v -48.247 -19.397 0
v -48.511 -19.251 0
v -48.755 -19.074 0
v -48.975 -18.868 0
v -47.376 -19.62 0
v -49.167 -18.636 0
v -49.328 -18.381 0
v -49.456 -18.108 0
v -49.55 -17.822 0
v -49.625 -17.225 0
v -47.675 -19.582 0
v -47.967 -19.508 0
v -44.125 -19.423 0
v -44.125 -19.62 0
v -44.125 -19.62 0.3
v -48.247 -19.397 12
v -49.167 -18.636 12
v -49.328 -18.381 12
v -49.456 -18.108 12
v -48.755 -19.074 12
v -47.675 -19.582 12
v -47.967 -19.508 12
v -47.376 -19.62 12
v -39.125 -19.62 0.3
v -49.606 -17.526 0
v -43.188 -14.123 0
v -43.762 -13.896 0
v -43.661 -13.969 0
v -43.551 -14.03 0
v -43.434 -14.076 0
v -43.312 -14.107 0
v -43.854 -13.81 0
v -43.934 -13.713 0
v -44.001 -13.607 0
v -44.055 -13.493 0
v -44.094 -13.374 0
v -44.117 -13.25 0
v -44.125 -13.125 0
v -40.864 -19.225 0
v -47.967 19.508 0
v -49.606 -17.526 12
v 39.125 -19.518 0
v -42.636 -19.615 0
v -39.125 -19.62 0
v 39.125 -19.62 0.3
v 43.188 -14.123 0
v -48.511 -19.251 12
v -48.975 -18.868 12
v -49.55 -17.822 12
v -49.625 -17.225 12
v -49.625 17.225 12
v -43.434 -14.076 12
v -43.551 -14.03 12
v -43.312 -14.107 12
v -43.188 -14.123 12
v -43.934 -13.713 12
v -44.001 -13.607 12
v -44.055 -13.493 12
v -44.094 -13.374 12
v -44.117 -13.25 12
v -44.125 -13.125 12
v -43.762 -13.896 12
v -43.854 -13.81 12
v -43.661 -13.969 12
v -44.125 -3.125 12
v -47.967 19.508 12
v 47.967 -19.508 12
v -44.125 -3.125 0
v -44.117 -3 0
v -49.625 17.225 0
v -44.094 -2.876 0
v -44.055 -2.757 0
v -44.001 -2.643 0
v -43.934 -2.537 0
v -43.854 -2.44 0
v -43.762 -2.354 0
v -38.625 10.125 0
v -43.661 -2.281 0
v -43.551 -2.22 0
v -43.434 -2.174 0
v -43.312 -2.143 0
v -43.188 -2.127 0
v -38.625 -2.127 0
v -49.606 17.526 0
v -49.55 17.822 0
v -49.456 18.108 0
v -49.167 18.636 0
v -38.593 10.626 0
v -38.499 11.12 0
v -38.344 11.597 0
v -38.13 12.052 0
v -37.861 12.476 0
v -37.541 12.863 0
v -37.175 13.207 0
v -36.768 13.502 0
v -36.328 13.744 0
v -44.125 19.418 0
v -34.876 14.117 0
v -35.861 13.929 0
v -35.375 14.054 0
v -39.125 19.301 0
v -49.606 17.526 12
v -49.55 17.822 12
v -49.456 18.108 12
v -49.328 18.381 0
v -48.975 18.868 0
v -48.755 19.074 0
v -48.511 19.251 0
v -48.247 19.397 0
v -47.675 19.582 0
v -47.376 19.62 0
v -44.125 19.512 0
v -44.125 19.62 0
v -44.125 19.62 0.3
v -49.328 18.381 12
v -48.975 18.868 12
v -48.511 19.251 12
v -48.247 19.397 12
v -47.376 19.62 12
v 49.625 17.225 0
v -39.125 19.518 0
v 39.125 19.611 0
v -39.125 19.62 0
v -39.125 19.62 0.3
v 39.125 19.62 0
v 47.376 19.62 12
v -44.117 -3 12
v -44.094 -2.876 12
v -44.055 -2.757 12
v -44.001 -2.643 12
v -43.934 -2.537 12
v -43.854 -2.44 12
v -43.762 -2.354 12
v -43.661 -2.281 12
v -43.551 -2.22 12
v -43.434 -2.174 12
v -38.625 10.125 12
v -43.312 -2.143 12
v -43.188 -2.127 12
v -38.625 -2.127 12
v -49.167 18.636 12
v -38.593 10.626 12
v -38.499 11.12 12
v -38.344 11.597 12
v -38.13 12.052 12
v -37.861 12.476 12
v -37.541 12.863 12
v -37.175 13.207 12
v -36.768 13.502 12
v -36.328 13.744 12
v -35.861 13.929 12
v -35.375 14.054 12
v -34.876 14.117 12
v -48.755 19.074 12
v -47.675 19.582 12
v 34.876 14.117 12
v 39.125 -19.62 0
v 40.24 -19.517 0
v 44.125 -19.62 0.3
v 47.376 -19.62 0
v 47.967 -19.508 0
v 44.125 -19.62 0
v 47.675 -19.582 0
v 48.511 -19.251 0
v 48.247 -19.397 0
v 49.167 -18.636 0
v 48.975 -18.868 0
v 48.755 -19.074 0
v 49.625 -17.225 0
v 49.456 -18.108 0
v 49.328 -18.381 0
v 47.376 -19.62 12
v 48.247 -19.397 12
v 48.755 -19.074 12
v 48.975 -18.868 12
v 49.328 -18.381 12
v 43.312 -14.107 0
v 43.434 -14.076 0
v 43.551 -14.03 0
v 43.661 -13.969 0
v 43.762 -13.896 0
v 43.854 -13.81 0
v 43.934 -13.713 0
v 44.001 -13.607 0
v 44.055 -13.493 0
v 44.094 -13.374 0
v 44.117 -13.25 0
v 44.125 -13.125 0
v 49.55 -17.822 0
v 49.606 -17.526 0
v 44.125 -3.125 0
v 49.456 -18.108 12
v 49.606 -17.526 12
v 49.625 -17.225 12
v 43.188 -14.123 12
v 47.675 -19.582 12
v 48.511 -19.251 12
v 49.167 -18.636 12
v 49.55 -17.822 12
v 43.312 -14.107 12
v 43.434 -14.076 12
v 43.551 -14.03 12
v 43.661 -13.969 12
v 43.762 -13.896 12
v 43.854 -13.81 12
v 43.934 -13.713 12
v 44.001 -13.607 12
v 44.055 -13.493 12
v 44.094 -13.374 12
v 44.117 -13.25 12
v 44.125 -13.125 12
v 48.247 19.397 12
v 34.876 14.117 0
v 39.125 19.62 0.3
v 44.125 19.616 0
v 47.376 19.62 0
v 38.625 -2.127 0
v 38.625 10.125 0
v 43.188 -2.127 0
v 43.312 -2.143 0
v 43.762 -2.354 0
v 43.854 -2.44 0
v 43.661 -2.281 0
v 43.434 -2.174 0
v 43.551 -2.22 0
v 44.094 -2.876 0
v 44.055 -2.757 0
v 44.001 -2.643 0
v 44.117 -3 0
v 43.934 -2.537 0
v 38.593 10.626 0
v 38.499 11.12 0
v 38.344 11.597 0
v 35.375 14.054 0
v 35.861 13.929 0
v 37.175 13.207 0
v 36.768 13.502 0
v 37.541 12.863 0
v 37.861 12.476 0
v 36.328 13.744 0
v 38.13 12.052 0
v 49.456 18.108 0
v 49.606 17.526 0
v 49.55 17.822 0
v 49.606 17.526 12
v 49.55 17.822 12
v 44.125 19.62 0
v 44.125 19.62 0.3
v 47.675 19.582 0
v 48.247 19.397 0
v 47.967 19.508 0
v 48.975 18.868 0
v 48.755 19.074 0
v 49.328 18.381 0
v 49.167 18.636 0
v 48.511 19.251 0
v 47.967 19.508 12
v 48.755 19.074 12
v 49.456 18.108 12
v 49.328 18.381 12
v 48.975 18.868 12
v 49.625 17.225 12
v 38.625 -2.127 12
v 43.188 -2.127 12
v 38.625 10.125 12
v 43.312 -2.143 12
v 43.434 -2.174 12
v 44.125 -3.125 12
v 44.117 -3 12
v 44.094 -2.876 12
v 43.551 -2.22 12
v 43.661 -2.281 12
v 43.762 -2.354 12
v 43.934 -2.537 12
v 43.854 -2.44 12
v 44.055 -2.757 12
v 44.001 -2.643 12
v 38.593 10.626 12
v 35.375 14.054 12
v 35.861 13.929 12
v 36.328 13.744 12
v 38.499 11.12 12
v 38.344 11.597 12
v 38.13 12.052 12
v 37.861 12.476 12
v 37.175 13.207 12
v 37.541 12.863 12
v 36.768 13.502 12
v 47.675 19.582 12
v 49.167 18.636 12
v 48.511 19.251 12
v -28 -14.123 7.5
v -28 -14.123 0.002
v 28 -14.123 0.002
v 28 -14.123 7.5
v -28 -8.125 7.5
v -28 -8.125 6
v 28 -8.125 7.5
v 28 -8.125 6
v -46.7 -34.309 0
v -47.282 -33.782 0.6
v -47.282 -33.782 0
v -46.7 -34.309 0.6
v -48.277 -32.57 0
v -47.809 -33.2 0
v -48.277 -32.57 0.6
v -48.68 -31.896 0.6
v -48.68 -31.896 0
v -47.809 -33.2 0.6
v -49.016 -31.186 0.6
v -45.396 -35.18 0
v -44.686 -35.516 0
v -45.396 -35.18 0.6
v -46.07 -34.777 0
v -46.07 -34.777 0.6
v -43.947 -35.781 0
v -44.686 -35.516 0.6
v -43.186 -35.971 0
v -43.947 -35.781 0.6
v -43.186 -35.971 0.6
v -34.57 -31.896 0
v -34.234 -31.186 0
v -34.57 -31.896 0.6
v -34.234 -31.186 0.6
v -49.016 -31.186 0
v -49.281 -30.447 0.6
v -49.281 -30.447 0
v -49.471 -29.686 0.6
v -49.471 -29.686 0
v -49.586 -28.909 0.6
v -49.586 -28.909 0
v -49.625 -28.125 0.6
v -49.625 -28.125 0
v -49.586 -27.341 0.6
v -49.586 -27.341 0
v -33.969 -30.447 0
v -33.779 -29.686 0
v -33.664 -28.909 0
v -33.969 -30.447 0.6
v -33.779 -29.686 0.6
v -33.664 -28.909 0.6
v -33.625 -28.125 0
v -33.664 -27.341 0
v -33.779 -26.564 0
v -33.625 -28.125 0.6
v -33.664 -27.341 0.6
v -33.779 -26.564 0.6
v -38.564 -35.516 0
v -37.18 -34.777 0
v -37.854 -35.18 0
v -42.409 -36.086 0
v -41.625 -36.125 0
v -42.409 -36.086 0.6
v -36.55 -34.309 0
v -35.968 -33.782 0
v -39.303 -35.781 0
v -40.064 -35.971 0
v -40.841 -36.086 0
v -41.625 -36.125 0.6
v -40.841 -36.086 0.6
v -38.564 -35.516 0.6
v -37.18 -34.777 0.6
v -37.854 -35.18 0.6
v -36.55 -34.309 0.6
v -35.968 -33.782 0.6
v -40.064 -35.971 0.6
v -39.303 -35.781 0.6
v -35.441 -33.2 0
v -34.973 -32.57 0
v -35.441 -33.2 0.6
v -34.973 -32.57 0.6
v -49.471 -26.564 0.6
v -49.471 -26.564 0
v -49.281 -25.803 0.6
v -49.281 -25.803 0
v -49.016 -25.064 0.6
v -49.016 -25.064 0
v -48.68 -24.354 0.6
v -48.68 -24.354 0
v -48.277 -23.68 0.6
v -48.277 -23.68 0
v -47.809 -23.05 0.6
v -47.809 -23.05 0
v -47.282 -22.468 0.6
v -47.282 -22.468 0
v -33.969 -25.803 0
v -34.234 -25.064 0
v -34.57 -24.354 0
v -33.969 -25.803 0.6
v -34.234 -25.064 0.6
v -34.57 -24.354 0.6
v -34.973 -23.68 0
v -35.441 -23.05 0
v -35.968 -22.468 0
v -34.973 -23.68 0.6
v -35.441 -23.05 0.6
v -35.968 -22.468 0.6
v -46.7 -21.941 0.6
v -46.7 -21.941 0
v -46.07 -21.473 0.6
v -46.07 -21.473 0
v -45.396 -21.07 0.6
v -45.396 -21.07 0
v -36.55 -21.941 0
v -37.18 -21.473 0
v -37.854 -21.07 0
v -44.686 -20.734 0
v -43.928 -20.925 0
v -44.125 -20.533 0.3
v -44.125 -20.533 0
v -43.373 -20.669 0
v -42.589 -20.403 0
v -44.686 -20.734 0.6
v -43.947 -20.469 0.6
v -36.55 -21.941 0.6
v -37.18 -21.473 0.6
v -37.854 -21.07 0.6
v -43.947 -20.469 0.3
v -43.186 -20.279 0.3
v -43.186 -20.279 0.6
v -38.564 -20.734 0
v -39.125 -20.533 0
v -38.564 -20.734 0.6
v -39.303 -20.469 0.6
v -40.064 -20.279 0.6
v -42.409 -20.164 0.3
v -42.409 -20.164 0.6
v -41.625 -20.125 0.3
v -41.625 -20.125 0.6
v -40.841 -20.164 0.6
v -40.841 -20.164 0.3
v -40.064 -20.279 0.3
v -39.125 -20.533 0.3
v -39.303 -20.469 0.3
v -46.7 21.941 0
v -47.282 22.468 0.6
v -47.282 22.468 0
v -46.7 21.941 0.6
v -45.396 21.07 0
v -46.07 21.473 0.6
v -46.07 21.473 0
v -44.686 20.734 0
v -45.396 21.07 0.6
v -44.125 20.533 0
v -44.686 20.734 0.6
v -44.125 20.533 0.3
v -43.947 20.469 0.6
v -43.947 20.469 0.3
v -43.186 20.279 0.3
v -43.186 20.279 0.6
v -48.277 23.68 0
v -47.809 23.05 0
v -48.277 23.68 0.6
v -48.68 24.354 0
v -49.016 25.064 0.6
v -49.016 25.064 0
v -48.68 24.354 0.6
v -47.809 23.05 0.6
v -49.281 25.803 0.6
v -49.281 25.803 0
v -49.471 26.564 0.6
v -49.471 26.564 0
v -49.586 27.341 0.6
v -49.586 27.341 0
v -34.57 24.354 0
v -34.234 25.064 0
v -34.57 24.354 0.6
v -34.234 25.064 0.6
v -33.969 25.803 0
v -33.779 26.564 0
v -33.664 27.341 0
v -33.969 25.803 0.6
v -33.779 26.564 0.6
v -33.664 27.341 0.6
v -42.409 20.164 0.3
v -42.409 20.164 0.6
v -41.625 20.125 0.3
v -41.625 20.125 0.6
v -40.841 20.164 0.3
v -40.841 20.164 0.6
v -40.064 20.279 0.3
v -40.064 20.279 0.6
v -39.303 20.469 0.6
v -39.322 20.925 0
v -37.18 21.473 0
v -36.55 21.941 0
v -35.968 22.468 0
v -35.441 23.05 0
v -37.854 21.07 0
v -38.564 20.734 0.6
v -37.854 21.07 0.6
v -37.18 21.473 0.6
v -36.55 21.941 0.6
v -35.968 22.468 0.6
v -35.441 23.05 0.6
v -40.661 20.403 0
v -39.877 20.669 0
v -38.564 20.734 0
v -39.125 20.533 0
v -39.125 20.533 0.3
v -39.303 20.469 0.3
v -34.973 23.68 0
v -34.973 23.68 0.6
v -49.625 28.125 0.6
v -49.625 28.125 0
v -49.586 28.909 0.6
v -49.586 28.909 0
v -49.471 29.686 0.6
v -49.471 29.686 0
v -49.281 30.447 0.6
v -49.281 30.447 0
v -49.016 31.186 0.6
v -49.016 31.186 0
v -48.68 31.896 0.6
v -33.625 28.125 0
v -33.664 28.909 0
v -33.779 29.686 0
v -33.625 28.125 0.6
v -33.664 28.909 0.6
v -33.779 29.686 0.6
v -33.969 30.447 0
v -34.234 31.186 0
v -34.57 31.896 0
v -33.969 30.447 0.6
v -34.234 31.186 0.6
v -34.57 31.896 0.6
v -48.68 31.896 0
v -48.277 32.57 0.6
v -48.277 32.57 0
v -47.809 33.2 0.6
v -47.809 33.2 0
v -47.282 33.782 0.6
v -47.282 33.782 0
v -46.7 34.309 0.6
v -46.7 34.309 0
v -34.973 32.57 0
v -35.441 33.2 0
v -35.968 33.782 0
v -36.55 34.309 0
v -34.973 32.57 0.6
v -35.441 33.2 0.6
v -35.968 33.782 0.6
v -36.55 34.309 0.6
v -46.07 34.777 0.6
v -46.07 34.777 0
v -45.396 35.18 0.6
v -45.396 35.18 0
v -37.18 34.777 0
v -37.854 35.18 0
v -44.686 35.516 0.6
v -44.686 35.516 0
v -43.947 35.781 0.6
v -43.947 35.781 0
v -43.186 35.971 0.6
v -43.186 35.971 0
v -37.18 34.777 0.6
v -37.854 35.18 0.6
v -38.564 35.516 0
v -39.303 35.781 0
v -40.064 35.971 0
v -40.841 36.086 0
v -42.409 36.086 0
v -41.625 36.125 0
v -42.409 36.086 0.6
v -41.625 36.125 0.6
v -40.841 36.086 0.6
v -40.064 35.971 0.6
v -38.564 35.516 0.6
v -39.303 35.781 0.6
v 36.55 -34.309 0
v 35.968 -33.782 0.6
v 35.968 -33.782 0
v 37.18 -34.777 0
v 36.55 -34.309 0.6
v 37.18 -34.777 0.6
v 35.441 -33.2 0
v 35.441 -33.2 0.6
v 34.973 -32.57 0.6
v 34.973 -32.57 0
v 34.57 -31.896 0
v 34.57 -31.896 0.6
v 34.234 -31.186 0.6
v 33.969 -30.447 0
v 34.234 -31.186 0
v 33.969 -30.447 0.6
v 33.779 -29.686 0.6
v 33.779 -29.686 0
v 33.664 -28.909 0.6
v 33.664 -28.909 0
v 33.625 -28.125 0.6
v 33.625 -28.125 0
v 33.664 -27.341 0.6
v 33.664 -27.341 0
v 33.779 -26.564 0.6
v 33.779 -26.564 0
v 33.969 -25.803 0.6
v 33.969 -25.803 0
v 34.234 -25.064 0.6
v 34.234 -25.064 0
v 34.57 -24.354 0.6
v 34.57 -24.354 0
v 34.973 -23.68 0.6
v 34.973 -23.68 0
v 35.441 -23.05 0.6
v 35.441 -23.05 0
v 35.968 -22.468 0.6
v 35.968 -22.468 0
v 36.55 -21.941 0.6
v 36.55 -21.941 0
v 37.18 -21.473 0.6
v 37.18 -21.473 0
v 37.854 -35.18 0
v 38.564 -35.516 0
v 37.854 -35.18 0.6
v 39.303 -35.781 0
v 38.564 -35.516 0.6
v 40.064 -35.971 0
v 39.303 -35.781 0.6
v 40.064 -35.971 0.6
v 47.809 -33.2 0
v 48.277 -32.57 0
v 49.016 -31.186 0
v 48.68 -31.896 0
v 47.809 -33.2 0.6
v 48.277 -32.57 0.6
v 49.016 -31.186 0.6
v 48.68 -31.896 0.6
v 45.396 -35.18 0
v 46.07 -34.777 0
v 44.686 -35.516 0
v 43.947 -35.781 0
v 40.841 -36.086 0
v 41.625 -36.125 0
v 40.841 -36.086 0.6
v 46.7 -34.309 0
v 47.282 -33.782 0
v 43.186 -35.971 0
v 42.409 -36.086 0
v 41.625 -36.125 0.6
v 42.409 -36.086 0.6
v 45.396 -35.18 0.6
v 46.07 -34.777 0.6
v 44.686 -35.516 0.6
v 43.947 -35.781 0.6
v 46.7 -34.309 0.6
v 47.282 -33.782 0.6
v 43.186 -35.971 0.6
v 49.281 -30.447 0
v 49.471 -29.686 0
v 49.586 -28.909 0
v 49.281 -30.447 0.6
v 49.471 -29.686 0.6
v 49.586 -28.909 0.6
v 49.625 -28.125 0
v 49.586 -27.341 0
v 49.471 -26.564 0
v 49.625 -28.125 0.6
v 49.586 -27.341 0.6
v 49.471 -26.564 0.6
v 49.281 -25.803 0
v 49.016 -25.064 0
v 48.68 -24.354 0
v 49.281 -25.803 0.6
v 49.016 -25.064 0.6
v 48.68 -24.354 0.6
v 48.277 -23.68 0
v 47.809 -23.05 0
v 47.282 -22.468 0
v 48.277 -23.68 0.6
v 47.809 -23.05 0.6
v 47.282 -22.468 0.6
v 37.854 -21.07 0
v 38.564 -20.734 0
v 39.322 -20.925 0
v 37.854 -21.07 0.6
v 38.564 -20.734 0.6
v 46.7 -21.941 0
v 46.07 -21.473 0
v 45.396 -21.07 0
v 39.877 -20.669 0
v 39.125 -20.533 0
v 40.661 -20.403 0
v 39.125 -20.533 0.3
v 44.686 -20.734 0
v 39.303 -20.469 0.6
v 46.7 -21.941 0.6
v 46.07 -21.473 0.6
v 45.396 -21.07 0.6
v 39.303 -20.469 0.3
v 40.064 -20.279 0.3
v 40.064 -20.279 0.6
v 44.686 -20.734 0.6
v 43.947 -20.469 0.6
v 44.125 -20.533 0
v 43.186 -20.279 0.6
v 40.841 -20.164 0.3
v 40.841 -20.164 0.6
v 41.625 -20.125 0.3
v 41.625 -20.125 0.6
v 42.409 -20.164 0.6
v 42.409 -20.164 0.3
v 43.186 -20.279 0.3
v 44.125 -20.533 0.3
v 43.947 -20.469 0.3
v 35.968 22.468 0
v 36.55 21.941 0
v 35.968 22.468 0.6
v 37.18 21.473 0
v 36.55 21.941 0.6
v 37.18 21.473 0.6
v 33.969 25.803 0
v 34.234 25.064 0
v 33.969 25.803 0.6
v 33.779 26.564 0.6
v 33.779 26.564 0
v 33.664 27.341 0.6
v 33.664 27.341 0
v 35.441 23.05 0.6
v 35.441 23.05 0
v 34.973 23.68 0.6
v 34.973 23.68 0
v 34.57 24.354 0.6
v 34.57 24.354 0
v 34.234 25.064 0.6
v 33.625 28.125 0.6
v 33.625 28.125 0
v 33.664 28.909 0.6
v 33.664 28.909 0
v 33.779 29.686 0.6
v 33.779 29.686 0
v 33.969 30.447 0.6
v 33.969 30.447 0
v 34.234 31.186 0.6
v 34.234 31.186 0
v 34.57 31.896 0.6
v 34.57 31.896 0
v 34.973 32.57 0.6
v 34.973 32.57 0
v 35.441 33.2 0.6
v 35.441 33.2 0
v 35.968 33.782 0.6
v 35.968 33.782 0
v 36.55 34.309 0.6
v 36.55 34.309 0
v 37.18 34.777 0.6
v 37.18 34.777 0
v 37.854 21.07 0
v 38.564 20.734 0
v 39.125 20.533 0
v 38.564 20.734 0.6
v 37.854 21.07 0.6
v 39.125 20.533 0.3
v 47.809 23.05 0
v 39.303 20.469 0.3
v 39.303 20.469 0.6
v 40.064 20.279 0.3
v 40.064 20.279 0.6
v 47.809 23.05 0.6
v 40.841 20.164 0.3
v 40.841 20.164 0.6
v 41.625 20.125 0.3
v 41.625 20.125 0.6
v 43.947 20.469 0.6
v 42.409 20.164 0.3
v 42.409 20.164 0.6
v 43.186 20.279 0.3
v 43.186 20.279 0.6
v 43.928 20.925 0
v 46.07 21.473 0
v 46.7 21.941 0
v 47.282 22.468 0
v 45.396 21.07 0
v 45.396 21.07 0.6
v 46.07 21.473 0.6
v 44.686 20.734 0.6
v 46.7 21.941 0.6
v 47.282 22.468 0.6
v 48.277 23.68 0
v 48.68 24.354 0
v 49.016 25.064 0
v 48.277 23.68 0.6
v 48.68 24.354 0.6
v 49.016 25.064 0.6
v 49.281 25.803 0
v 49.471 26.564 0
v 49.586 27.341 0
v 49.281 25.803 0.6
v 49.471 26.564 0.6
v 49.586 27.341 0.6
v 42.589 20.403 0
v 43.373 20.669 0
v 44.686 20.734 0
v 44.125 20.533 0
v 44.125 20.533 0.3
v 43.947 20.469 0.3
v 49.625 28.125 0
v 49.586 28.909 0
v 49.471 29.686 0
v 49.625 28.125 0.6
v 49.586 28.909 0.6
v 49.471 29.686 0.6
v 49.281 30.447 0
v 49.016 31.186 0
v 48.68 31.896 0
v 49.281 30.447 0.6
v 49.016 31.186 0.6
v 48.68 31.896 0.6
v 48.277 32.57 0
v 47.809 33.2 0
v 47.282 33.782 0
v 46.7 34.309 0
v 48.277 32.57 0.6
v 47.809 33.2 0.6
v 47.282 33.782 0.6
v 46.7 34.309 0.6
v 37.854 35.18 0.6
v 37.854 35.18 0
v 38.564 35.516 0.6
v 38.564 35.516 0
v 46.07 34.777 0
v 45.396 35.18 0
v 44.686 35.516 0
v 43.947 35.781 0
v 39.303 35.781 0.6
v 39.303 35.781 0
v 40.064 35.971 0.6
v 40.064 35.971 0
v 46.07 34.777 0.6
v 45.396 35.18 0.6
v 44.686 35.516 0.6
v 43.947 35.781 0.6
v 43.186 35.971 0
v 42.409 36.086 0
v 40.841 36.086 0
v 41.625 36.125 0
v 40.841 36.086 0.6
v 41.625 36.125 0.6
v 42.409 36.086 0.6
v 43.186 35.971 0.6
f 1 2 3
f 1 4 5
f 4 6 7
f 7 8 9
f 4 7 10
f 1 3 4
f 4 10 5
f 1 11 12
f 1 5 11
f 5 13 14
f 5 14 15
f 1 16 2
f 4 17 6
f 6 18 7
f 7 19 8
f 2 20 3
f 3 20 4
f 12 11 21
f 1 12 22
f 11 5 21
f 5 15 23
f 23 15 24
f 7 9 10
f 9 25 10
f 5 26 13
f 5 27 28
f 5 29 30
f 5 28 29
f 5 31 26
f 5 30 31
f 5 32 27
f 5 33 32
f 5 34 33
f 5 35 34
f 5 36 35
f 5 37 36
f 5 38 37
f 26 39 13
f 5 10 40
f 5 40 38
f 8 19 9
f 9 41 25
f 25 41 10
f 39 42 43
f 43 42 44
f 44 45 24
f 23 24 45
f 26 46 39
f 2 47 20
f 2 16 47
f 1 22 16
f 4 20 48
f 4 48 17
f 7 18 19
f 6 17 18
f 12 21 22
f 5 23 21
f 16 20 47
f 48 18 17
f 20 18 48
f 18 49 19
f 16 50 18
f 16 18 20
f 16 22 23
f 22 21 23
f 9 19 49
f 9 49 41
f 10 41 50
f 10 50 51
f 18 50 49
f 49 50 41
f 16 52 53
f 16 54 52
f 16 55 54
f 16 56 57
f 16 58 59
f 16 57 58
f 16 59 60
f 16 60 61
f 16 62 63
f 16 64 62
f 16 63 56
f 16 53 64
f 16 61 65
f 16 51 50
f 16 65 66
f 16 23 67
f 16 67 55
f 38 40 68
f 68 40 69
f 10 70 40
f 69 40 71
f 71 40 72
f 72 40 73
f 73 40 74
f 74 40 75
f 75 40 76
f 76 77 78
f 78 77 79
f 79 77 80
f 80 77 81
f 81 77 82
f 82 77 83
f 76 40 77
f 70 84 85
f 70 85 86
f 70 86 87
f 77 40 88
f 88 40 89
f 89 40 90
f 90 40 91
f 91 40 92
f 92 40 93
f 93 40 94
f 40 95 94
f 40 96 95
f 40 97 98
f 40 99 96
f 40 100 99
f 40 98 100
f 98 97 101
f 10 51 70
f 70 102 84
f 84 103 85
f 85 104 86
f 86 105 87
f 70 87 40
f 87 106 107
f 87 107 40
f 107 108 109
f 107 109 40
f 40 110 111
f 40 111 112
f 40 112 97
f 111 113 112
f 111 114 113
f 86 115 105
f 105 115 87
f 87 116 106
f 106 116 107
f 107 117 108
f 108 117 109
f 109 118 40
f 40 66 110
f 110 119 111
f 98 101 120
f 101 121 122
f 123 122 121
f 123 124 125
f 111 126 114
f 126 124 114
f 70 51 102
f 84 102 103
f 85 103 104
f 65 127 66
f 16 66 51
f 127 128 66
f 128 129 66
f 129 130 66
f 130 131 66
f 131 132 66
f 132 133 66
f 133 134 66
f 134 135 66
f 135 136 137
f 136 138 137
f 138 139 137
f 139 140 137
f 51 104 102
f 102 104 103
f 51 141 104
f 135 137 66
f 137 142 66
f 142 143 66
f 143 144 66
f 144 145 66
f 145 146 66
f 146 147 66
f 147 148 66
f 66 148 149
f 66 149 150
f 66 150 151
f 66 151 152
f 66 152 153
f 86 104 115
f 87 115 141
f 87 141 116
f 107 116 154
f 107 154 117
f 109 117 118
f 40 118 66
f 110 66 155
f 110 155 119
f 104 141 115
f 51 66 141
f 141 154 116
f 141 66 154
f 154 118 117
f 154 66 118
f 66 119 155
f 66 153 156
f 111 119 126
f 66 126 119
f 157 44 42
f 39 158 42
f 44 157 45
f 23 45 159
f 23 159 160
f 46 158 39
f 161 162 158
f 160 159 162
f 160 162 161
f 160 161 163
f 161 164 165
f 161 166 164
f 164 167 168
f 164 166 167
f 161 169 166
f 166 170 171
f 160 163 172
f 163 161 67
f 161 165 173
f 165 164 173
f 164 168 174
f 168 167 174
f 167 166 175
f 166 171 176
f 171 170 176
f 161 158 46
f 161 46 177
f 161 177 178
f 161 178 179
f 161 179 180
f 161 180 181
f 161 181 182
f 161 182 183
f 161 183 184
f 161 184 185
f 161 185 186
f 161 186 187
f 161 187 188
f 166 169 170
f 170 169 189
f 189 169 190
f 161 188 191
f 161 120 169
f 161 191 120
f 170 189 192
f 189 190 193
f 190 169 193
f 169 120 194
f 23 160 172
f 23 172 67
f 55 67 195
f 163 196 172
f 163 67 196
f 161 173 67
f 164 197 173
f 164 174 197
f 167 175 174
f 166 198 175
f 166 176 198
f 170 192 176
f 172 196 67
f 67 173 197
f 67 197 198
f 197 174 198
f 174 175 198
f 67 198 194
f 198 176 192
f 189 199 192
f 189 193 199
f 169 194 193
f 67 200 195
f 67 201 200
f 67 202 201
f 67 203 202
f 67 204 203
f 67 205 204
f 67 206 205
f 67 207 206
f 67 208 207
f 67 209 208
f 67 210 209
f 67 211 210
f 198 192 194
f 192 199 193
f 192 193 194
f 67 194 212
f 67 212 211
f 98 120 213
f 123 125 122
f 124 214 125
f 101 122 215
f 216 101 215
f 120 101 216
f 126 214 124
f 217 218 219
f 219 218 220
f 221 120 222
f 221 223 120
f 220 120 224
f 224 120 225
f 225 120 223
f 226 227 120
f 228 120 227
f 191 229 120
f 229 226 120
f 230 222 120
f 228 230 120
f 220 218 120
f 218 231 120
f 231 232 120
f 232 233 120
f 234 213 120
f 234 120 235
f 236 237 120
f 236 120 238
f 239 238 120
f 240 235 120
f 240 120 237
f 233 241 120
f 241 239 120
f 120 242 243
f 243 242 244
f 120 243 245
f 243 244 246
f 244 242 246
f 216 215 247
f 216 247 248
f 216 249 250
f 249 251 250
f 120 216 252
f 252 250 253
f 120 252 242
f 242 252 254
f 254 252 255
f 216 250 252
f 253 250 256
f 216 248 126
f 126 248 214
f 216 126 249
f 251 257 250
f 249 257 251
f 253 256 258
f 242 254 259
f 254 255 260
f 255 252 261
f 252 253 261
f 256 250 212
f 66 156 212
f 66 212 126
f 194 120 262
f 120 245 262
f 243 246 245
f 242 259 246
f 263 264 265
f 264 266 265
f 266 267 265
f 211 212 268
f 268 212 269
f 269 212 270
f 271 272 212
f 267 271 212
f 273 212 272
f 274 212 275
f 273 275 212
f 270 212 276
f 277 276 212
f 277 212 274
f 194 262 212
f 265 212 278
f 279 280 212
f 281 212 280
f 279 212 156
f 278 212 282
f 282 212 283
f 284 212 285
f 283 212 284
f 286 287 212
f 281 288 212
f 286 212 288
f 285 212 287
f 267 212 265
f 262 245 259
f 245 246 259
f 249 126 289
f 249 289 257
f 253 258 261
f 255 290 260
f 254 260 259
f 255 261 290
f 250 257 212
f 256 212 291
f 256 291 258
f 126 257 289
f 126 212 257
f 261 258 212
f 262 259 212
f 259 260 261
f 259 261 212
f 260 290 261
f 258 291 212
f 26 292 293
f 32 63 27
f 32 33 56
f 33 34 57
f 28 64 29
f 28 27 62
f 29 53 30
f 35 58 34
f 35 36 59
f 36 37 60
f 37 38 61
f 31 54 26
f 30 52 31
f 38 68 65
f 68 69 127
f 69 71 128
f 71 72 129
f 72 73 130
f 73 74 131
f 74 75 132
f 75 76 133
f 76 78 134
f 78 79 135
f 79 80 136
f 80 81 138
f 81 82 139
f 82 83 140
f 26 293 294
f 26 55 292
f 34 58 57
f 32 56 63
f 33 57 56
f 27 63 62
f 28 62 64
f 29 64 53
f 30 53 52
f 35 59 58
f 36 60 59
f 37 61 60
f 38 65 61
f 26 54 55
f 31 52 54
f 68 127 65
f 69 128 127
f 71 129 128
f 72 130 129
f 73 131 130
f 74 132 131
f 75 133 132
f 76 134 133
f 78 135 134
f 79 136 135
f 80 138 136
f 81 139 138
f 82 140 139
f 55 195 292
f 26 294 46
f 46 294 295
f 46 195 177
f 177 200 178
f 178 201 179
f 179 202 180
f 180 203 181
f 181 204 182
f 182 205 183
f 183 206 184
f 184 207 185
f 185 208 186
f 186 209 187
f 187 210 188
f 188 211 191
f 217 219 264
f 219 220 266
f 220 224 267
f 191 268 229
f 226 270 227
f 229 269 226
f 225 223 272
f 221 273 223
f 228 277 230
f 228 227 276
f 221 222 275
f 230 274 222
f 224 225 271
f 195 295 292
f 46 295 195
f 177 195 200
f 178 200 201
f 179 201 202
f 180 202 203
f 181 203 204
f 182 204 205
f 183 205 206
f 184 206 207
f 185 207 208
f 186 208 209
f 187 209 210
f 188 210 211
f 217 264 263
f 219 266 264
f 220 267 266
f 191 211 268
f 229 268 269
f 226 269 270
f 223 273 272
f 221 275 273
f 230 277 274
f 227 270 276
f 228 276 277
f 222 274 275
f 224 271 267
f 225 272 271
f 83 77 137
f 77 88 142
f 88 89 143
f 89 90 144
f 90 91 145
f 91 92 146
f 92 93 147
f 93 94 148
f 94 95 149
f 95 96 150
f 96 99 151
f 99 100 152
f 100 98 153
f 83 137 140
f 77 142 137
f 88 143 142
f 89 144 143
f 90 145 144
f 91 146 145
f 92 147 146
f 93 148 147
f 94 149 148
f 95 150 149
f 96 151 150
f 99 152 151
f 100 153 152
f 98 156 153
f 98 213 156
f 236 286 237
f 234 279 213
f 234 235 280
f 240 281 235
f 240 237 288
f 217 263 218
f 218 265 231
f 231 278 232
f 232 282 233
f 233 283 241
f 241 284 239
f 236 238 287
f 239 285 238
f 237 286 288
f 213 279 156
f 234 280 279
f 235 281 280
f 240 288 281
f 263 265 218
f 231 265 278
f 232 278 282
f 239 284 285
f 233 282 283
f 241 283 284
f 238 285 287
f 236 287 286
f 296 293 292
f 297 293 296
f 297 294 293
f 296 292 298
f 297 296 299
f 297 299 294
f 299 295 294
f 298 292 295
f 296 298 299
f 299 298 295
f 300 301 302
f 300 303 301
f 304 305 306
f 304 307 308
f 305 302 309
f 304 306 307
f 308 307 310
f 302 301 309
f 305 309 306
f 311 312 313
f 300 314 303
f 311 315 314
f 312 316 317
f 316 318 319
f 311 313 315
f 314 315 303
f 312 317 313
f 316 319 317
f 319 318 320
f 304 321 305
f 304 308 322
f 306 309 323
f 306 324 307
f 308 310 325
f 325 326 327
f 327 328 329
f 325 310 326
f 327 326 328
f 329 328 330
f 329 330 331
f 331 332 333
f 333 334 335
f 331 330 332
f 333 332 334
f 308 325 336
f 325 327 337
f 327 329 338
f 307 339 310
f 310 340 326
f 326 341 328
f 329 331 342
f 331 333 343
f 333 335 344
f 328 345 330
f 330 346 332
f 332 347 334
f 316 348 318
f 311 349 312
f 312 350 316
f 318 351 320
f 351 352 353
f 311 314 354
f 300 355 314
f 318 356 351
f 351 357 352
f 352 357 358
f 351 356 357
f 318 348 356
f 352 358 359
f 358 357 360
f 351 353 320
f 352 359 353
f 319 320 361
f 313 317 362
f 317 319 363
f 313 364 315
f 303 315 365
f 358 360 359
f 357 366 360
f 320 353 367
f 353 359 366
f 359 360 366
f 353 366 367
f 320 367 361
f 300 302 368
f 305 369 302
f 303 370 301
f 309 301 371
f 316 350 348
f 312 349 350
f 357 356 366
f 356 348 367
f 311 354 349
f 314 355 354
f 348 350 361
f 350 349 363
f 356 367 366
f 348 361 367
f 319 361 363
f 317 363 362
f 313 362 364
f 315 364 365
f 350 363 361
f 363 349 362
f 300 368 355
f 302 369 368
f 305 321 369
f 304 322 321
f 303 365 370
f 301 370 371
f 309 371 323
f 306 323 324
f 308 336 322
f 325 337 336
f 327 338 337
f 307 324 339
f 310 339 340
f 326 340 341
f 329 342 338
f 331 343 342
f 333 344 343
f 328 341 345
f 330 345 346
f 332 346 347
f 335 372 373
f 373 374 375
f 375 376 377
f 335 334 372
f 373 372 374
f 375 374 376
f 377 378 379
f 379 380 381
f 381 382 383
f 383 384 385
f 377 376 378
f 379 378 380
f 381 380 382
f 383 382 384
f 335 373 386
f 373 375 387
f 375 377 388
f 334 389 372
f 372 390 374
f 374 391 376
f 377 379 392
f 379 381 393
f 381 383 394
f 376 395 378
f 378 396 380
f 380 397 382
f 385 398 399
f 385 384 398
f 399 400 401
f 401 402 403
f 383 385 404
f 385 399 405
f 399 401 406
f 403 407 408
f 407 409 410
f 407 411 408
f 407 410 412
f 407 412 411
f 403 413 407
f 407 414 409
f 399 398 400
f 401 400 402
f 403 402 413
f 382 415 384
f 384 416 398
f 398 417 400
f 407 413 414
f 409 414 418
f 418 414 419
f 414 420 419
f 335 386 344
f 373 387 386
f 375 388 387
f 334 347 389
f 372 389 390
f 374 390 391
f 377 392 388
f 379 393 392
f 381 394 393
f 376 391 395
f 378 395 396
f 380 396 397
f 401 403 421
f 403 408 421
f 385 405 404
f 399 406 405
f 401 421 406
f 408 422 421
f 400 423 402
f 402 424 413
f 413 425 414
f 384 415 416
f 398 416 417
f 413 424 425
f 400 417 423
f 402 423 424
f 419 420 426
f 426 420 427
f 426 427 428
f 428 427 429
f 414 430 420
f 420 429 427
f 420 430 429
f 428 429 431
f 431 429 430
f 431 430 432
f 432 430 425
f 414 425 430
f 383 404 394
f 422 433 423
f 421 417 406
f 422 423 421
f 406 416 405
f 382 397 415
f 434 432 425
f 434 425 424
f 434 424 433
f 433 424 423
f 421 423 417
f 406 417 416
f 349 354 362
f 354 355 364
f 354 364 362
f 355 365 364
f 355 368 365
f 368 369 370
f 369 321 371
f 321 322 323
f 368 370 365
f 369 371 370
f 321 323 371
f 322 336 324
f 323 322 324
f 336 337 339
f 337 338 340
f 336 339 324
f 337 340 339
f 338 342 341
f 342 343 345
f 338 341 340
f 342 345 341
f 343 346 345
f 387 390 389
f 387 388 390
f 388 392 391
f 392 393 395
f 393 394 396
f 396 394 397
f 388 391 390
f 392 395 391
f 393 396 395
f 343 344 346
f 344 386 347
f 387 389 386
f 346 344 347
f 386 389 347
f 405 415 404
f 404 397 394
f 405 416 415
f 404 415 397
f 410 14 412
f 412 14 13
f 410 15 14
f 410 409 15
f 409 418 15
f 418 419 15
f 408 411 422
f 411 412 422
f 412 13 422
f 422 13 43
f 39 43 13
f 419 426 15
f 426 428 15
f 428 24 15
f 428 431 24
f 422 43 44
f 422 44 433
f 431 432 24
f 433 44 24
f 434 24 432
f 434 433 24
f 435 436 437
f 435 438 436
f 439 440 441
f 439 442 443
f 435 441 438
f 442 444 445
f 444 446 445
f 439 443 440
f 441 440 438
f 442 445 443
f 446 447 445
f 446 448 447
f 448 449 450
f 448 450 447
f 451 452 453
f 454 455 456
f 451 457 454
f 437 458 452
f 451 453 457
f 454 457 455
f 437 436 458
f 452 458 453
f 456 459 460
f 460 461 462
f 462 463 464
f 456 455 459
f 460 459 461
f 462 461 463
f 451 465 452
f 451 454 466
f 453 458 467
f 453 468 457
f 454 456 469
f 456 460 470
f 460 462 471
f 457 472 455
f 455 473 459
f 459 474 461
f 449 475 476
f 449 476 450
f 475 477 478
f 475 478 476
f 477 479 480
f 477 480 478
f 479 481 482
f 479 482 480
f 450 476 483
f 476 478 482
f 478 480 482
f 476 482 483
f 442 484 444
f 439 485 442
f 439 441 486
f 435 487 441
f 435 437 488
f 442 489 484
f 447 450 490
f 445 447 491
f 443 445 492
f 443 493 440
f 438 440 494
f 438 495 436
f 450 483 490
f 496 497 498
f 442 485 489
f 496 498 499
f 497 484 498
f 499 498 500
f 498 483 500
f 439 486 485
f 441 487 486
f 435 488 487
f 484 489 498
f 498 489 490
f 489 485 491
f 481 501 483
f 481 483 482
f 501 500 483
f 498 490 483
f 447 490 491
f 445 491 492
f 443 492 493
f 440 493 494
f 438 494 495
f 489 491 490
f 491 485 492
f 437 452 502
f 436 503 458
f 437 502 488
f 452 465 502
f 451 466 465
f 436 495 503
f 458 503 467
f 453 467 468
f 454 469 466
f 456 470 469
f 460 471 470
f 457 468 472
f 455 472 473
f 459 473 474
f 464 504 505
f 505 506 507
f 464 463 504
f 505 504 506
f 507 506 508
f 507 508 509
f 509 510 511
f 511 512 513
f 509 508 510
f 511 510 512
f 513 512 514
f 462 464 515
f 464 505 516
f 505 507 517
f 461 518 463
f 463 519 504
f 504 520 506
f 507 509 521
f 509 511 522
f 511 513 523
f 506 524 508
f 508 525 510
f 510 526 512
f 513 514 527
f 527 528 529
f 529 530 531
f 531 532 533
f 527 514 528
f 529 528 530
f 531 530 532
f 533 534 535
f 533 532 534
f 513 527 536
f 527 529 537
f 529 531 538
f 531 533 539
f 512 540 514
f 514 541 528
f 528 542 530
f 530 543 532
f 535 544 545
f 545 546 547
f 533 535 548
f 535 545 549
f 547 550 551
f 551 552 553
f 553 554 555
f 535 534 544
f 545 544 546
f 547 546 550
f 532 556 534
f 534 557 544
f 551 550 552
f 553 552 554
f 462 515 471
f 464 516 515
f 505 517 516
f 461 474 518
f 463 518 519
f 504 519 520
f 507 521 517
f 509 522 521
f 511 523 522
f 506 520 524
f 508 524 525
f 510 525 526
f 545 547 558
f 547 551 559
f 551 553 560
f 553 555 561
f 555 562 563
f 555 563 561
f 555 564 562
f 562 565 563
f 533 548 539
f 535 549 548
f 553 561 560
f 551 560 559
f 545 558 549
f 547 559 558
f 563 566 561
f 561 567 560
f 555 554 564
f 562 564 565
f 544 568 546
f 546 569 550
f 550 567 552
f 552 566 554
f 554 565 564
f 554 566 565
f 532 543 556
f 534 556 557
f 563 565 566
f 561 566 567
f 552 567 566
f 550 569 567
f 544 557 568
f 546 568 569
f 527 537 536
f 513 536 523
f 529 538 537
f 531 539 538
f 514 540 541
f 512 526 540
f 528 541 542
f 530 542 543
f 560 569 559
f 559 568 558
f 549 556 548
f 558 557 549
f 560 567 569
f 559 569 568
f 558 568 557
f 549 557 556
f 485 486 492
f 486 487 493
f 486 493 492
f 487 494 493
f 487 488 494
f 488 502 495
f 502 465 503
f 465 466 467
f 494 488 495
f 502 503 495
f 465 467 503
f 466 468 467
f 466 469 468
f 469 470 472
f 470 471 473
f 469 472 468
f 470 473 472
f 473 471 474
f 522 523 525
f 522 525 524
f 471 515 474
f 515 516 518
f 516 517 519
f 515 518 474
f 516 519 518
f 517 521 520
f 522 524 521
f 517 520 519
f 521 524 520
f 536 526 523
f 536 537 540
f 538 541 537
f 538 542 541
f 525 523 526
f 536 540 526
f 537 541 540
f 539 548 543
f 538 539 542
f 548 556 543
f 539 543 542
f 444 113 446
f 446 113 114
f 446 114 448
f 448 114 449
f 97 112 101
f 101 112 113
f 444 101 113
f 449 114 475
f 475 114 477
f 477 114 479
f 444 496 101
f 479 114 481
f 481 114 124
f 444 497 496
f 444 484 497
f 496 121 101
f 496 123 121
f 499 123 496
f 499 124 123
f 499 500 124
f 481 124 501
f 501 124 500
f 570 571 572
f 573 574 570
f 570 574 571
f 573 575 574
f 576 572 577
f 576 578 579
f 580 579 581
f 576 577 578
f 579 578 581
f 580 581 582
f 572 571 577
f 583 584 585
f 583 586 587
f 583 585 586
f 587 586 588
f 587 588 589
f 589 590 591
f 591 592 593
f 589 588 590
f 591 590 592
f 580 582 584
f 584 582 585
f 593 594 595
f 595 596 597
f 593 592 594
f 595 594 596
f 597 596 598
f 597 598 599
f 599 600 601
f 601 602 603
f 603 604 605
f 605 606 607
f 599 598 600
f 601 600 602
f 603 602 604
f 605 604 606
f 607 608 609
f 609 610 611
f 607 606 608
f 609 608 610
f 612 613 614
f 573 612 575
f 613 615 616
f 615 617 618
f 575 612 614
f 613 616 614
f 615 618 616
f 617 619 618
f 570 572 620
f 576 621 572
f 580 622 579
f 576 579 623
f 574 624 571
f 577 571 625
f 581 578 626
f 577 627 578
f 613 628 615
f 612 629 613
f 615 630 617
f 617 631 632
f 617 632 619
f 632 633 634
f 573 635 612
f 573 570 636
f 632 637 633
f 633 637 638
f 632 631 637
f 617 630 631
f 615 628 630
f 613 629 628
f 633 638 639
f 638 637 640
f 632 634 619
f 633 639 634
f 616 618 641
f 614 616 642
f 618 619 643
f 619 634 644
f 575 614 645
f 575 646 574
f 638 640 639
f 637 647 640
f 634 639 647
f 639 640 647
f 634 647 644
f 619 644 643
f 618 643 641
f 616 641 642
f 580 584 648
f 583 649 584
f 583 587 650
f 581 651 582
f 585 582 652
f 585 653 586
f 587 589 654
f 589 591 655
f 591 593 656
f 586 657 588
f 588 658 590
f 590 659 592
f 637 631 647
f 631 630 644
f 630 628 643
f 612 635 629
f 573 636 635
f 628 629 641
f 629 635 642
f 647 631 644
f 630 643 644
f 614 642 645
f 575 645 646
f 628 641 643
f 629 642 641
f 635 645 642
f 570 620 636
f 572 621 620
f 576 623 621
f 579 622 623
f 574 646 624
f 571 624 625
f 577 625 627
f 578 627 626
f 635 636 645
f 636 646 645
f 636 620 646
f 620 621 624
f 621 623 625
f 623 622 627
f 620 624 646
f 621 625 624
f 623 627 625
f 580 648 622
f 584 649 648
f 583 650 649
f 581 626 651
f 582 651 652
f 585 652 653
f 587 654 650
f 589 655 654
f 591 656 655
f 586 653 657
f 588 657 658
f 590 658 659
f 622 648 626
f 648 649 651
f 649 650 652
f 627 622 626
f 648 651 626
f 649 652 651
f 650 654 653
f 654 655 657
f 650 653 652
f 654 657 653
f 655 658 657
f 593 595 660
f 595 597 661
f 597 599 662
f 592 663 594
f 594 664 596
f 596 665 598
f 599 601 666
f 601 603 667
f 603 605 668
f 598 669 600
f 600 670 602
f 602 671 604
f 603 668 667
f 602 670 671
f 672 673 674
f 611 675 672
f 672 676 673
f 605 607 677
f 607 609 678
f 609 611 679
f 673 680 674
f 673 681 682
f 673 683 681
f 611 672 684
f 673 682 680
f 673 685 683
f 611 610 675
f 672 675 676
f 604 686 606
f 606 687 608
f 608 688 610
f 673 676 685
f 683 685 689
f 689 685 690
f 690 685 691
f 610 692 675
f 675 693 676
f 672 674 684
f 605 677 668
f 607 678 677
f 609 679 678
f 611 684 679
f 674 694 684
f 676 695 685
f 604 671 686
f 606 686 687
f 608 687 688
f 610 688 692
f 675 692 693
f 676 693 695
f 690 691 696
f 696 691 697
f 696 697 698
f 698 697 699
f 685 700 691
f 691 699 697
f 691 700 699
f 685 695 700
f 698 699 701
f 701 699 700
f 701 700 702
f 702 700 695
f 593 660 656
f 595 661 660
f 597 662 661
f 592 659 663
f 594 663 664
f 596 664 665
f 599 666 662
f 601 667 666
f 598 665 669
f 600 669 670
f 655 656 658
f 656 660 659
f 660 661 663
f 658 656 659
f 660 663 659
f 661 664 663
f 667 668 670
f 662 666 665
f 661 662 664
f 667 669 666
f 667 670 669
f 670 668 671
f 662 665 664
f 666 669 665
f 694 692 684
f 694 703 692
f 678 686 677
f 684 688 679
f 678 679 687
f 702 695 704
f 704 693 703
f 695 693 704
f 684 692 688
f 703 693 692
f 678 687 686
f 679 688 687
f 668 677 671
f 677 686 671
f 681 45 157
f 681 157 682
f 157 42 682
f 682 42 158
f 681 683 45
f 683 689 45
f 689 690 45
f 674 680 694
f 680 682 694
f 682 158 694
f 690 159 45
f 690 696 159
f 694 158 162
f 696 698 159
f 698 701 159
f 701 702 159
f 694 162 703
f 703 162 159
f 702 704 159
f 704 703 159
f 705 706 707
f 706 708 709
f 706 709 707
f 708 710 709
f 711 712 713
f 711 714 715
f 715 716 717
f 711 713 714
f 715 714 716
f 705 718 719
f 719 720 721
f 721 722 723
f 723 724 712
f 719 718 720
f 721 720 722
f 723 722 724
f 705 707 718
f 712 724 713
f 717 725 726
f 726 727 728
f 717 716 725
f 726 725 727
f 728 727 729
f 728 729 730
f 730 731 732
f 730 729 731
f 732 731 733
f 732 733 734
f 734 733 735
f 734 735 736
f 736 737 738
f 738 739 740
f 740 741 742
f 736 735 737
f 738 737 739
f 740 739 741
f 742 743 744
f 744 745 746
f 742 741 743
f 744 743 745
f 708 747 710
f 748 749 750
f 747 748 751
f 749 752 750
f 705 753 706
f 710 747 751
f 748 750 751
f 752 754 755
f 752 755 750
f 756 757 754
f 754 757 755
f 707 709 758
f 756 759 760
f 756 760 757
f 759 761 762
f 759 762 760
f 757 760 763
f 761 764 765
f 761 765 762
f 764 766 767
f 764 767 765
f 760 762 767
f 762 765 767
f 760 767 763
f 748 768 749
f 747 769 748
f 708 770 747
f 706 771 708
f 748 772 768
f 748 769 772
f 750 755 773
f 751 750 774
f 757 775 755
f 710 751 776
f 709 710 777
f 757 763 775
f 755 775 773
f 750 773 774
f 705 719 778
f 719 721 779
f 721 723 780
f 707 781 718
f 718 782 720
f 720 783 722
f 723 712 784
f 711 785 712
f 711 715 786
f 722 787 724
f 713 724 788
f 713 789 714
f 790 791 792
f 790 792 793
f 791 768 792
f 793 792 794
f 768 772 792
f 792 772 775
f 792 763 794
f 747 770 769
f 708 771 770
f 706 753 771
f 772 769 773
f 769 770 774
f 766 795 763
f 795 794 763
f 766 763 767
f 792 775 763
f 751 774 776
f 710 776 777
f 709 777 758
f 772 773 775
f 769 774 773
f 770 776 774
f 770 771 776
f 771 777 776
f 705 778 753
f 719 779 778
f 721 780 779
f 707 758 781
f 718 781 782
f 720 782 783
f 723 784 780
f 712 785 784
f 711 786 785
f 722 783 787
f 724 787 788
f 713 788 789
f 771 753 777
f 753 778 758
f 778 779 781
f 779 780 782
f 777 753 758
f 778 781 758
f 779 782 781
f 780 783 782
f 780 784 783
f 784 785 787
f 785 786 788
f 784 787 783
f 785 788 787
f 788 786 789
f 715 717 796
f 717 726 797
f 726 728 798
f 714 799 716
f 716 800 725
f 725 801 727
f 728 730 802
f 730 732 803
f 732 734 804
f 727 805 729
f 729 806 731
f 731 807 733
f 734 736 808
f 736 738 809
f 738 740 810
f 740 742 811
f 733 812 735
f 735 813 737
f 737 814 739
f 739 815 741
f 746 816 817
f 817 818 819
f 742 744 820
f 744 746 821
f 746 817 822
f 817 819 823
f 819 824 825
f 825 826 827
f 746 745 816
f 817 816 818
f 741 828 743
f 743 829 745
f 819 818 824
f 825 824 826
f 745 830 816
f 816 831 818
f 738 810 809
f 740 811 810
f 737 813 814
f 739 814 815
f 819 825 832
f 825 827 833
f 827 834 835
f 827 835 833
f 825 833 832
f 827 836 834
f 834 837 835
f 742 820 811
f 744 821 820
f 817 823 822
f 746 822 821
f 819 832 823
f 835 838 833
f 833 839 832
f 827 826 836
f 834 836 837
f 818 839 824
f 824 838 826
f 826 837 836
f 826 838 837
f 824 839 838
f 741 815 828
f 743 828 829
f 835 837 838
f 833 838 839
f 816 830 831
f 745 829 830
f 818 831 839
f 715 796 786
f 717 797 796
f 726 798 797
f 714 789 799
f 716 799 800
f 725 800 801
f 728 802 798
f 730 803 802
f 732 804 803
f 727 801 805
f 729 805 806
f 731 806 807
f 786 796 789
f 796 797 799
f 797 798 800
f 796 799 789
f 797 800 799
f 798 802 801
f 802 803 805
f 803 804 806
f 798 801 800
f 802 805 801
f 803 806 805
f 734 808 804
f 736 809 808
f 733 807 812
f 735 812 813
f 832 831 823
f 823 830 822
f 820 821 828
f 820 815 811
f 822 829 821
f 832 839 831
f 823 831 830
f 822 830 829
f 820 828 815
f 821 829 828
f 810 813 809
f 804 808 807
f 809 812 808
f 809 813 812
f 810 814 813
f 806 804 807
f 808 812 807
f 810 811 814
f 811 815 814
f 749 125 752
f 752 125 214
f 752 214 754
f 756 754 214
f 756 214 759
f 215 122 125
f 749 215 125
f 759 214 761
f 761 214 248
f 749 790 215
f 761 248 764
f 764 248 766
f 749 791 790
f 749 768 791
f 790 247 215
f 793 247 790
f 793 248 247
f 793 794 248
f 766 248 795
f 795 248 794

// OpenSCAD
$fn = 50;

union() {
	difference() {
		union() {
			hull() {
				translate(v = [-47.225, 17.225, 0]) {
					cylinder(h = 12, r = 2.4);
				}
				translate(v = [47.225, 17.225, 0]) {
					cylinder(h = 12, r = 2.4);
				}
				translate(v = [-47.225, -17.225, 0]) {
					cylinder(h = 12, r = 2.4);
				}
				translate(v = [47.225, -17.225, 0]) {
					cylinder(h = 12, r = 2.4);
				}
			}
		}
		union() {
			translate(v = [0.0, -8.125, -0.1]) {
				hull() {
					translate(v = [-43.125, 5.0, 0]) {
						cylinder(h = 12.2, r = 1.0);
					}
					translate(v = [43.125, 5.0, 0]) {
						cylinder(h = 12.2, r = 1.0);
					}
					translate(v = [-43.125, -5.0, 0]) {
						cylinder(h = 12.2, r = 1.0);
					}
					translate(v = [43.125, -5.0, 0]) {
						cylinder(h = 12.2, r = 1.0);
					}
				}
			}
			translate(v = [0.0, 0.0, -0.1]) {
				hull() {
					translate(v = [-34.625, 10.125, 0]) {
						cylinder(h = 12.2, r = 4.0);
					}
					translate(v = [34.625, 10.125, 0]) {
						cylinder(h = 12.2, r = 4.0);
					}
					translate(v = [-34.625, -10.125, 0]) {
						cylinder(h = 12.2, r = 4.0);
					}
					translate(v = [34.625, -10.125, 0]) {
						cylinder(h = 12.2, r = 4.0);
					}
				}
			}
		}
	}
	union() {
		#translate(v = [-28.0, -14.125, 0]) {
			rotate(a = [90, 0, 90]) {
				linear_extrude(height = 56.0) {
					polygon(points = [[-1.8, 0], [0, 0], [6.0, 6.0], [6.0, 7.5], [-1.8, 7.5]]);
				}
			}
		}
		translate(v = [-41.625, -28.125, 0]) {
			linear_extrude(height = 0.6) {
				polygon(points = [[8.0, 0.0], [7.961477813377575, 0.7841371226364848], [7.8462822432258434, 1.560722576129026], [7.655522685857671, 2.3222774180356986], [7.391036260090294, 3.0614674589207183], [7.05537011478684, 3.771173894607981], [6.651756898420362, 4.444561864156817], [6.184083626901896, 5.075146273309164], [5.656854249492381, 5.656854249492381], [5.075146273309164, 6.184083626901895], [4.444561864156818, 6.651756898420362], [3.7711738946079825, 7.0553701147868395], [3.0614674589207187, 7.391036260090294], [2.3222774180356986, 7.6555226858576715], [1.5607225761290267, 7.8462822432258434], [0.7841371226364862, 7.9614778133775745], [4.898587196589413e-16, 8.0], [-0.7841371226364852, 7.961477813377575], [-1.5607225761290255, 7.8462822432258434], [-2.3222774180356973, 7.6555226858576715], [-3.061467458920718, 7.391036260090294], [-3.7711738946079816, 7.05537011478684], [-4.444561864156816, 6.651756898420363], [-5.075146273309163, 6.184083626901897], [-5.65685424949238, 5.656854249492381], [-6.184083626901896, 5.075146273309164], [-6.651756898420363, 4.444561864156817], [-7.0553701147868395, 3.7711738946079825], [-7.391036260090294, 3.061467458920719], [-7.655522685857671, 2.322277418035699], [-7.8462822432258434, 1.5607225761290289], [-7.9614778133775745, 0.7841371226364866], [-8.0, 9.797174393178826e-16], [-7.961477813377575, -0.7841371226364847], [-7.8462822432258434, -1.5607225761290269], [-7.6555226858576715, -2.322277418035697], [-7.391036260090295, -3.0614674589207174], [-7.05537011478684, -3.771173894607981], [-6.651756898420364, -4.444561864156816], [-6.184083626901897, -5.075146273309162], [-5.6568542494923815, -5.65685424949238], [-5.0751462733091675, -6.184083626901893], [-4.444561864156817, -6.651756898420362], [-3.771173894607983, -7.0553701147868395], [-3.0614674589207227, -7.391036260090292], [-2.3222774180356995, -7.655522685857671], [-1.5607225761290293, -7.846282243225843], [-0.7841371226364836, -7.961477813377575], [-1.4695761589768238e-15, -8.0], [0.7841371226364807, -7.961477813377575], [1.5607225761290264, -7.8462822432258434], [2.3222774180356964, -7.6555226858576715], [3.06146745892072, -7.391036260090293], [3.7711738946079807, -7.05537011478684], [4.444561864156815, -6.651756898420364], [5.075146273309165, -6.184083626901895], [5.656854249492379, -5.6568542494923815], [6.184083626901892, -5.0751462733091675], [6.651756898420362, -4.444561864156817], [7.055370114786839, -3.7711738946079834], [7.391036260090292, -3.061467458920723], [7.655522685857671, -2.3222774180357], [7.846282243225843, -1.5607225761290298], [7.961477813377575, -0.784137122636484]]);
			}
		}
		translate(v = [-44.125, -20.925, 0]) {
			cube(size = [5.0, 1.6999999999999993, 0.3]);
		}
		translate(v = [-41.625, 28.125, 0]) {
			linear_extrude(height = 0.6) {
				polygon(points = [[8.0, 0.0], [7.961477813377575, 0.7841371226364848], [7.8462822432258434, 1.560722576129026], [7.655522685857671, 2.3222774180356986], [7.391036260090294, 3.0614674589207183], [7.05537011478684, 3.771173894607981], [6.651756898420362, 4.444561864156817], [6.184083626901896, 5.075146273309164], [5.656854249492381, 5.656854249492381], [5.075146273309164, 6.184083626901895], [4.444561864156818, 6.651756898420362], [3.7711738946079825, 7.0553701147868395], [3.0614674589207187, 7.391036260090294], [2.3222774180356986, 7.6555226858576715], [1.5607225761290267, 7.8462822432258434], [0.7841371226364862, 7.9614778133775745], [4.898587196589413e-16, 8.0], [-0.7841371226364852, 7.961477813377575], [-1.5607225761290255, 7.8462822432258434], [-2.3222774180356973, 7.6555226858576715], [-3.061467458920718, 7.391036260090294], [-3.7711738946079816, 7.05537011478684], [-4.444561864156816, 6.651756898420363], [-5.075146273309163, 6.184083626901897], [-5.65685424949238, 5.656854249492381], [-6.184083626901896, 5.075146273309164], [-6.651756898420363, 4.444561864156817], [-7.0553701147868395, 3.7711738946079825], [-7.391036260090294, 3.061467458920719], [-7.655522685857671, 2.322277418035699], [-7.8462822432258434, 1.5607225761290289], [-7.9614778133775745, 0.7841371226364866], [-8.0, 9.797174393178826e-16], [-7.961477813377575, -0.7841371226364847], [-7.8462822432258434, -1.5607225761290269], [-7.6555226858576715, -2.322277418035697], [-7.391036260090295, -3.0614674589207174], [-7.05537011478684, -3.771173894607981], [-6.651756898420364, -4.444561864156816], [-6.184083626901897, -5.075146273309162], [-5.6568542494923815, -5.65685424949238], [-5.0751462733091675, -6.184083626901893], [-4.444561864156817, -6.651756898420362], [-3.771173894607983, -7.0553701147868395], [-3.0614674589207227, -7.391036260090292], [-2.3222774180356995, -7.655522685857671], [-1.5607225761290293, -7.846282243225843], [-0.7841371226364836, -7.961477813377575], [-1.4695761589768238e-15, -8.0], [0.7841371226364807, -7.961477813377575], [1.5607225761290264, -7.8462822432258434], [2.3222774180356964, -7.6555226858576715], [3.06146745892072, -7.391036260090293], [3.7711738946079807, -7.05537011478684], [4.444561864156815, -6.651756898420364], [5.075146273309165, -6.184083626901895], [5.656854249492379, -5.6568542494923815], [6.184083626901892, -5.0751462733091675], [6.651756898420362, -4.444561864156817], [7.055370114786839, -3.7711738946079834], [7.391036260090292, -3.061467458920723], [7.655522685857671, -2.3222774180357], [7.846282243225843, -1.5607225761290298], [7.961477813377575, -0.784137122636484]]);
			}
		}
		translate(v = [-44.125, 19.225, 0]) {
			cube(size = [5.0, 1.6999999999999993, 0.3]);
		}
		translate(v = [41.625, -28.125, 0]) {
			linear_extrude(height = 0.6) {
				polygon(points = [[8.0, 0.0], [7.961477813377575, 0.7841371226364848], [7.8462822432258434, 1.560722576129026], [7.655522685857671, 2.3222774180356986], [7.391036260090294, 3.0614674589207183], [7.05537011478684, 3.771173894607981], [6.651756898420362, 4.444561864156817], [6.184083626901896, 5.075146273309164], [5.656854249492381, 5.656854249492381], [5.075146273309164, 6.184083626901895], [4.444561864156818, 6.651756898420362], [3.7711738946079825, 7.0553701147868395], [3.0614674589207187, 7.391036260090294], [2.3222774180356986, 7.6555226858576715], [1.5607225761290267, 7.8462822432258434], [0.7841371226364862, 7.9614778133775745], [4.898587196589413e-16, 8.0], [-0.7841371226364852, 7.961477813377575], [-1.5607225761290255, 7.8462822432258434], [-2.3222774180356973, 7.6555226858576715], [-3.061467458920718, 7.391036260090294], [-3.7711738946079816, 7.05537011478684], [-4.444561864156816, 6.651756898420363], [-5.075146273309163, 6.184083626901897], [-5.65685424949238, 5.656854249492381], [-6.184083626901896, 5.075146273309164], [-6.651756898420363, 4.444561864156817], [-7.0553701147868395, 3.7711738946079825], [-7.391036260090294, 3.061467458920719], [-7.655522685857671, 2.322277418035699], [-7.8462822432258434, 1.5607225761290289], [-7.9614778133775745, 0.7841371226364866], [-8.0, 9.797174393178826e-16], [-7.961477813377575, -0.7841371226364847], [-7.8462822432258434, -1.5607225761290269], [-7.6555226858576715, -2.322277418035697], [-7.391036260090295, -3.0614674589207174], [-7.05537011478684, -3.771173894607981], [-6.651756898420364, -4.444561864156816], [-6.184083626901897, -5.075146273309162], [-5.6568542494923815, -5.65685424949238], [-5.0751462733091675, -6.184083626901893], [-4.444561864156817, -6.651756898420362], [-3.771173894607983, -7.0553701147868395], [-3.0614674589207227, -7.391036260090292], [-2.3222774180356995, -7.655522685857671], [-1.5607225761290293, -7.846282243225843], [-0.7841371226364836, -7.961477813377575], [-1.4695761589768238e-15, -8.0], [0.7841371226364807, -7.961477813377575], [1.5607225761290264, -7.8462822432258434], [2.3222774180356964, -7.6555226858576715], [3.06146745892072, -7.391036260090293], [3.7711738946079807, -7.05537011478684], [4.444561864156815, -6.651756898420364], [5.075146273309165, -6.184083626901895], [5.656854249492379, -5.6568542494923815], [6.184083626901892, -5.0751462733091675], [6.651756898420362, -4.444561864156817], [7.055370114786839, -3.7711738946079834], [7.391036260090292, -3.061467458920723], [7.655522685857671, -2.3222774180357], [7.846282243225843, -1.5607225761290298], [7.961477813377575, -0.784137122636484]]);
			}
		}
		translate(v = [39.125, -20.925, 0]) {
			cube(size = [5.0, 1.6999999999999993, 0.3]);
		}
		translate(v = [41.625, 28.125, 0]) {
			linear_extrude(height = 0.6) {
				polygon(points = [[8.0, 0.0], [7.961477813377575, 0.7841371226364848], [7.8462822432258434, 1.560722576129026], [7.655522685857671, 2.3222774180356986], [7.391036260090294, 3.0614674589207183], [7.05537011478684, 3.771173894607981], [6.651756898420362, 4.444561864156817], [6.184083626901896, 5.075146273309164], [5.656854249492381, 5.656854249492381], [5.075146273309164, 6.184083626901895], [4.444561864156818, 6.651756898420362], [3.7711738946079825, 7.0553701147868395], [3.0614674589207187, 7.391036260090294], [2.3222774180356986, 7.6555226858576715], [1.5607225761290267, 7.8462822432258434], [0.7841371226364862, 7.9614778133775745], [4.898587196589413e-16, 8.0], [-0.7841371226364852, 7.961477813377575], [-1.5607225761290255, 7.8462822432258434], [-2.3222774180356973, 7.6555226858576715], [-3.061467458920718, 7.391036260090294], [-3.7711738946079816, 7.05537011478684], [-4.444561864156816, 6.651756898420363], [-5.075146273309163, 6.184083626901897], [-5.65685424949238, 5.656854249492381], [-6.184083626901896, 5.075146273309164], [-6.651756898420363, 4.444561864156817], [-7.0553701147868395, 3.7711738946079825], [-7.391036260090294, 3.061467458920719], [-7.655522685857671, 2.322277418035699], [-7.8462822432258434, 1.5607225761290289], [-7.9614778133775745, 0.7841371226364866], [-8.0, 9.797174393178826e-16], [-7.961477813377575, -0.7841371226364847], [-7.8462822432258434, -1.5607225761290269], [-7.6555226858576715, -2.322277418035697], [-7.391036260090295, -3.0614674589207174], [-7.05537011478684, -3.771173894607981], [-6.651756898420364, -4.444561864156816], [-6.184083626901897, -5.075146273309162], [-5.6568542494923815, -5.65685424949238], [-5.0751462733091675, -6.184083626901893], [-4.444561864156817, -6.651756898420362], [-3.771173894607983, -7.0553701147868395], [-3.0614674589207227, -7.391036260090292], [-2.3222774180356995, -7.655522685857671], [-1.5607225761290293, -7.846282243225843], [-0.7841371226364836, -7.961477813377575], [-1.4695761589768238e-15, -8.0], [0.7841371226364807, -7.961477813377575], [1.5607225761290264, -7.8462822432258434], [2.3222774180356964, -7.6555226858576715], [3.06146745892072, -7.391036260090293], [3.7711738946079807, -7.05537011478684], [4.444561864156815, -6.651756898420364], [5.075146273309165, -6.184083626901895], [5.656854249492379, -5.6568542494923815], [6.184083626901892, -5.0751462733091675], [6.651756898420362, -4.444561864156817], [7.055370114786839, -3.7711738946079834], [7.391036260090292, -3.061467458920723], [7.655522685857671, -2.3222774180357], [7.846282243225843, -1.5607225761290298], [7.961477813377575, -0.784137122636484]]);
			}
		}
		translate(v = [39.125, 19.225, 0]) {
			cube(size = [5.0, 1.6999999999999993, 0.3]);
		}
	}
}
